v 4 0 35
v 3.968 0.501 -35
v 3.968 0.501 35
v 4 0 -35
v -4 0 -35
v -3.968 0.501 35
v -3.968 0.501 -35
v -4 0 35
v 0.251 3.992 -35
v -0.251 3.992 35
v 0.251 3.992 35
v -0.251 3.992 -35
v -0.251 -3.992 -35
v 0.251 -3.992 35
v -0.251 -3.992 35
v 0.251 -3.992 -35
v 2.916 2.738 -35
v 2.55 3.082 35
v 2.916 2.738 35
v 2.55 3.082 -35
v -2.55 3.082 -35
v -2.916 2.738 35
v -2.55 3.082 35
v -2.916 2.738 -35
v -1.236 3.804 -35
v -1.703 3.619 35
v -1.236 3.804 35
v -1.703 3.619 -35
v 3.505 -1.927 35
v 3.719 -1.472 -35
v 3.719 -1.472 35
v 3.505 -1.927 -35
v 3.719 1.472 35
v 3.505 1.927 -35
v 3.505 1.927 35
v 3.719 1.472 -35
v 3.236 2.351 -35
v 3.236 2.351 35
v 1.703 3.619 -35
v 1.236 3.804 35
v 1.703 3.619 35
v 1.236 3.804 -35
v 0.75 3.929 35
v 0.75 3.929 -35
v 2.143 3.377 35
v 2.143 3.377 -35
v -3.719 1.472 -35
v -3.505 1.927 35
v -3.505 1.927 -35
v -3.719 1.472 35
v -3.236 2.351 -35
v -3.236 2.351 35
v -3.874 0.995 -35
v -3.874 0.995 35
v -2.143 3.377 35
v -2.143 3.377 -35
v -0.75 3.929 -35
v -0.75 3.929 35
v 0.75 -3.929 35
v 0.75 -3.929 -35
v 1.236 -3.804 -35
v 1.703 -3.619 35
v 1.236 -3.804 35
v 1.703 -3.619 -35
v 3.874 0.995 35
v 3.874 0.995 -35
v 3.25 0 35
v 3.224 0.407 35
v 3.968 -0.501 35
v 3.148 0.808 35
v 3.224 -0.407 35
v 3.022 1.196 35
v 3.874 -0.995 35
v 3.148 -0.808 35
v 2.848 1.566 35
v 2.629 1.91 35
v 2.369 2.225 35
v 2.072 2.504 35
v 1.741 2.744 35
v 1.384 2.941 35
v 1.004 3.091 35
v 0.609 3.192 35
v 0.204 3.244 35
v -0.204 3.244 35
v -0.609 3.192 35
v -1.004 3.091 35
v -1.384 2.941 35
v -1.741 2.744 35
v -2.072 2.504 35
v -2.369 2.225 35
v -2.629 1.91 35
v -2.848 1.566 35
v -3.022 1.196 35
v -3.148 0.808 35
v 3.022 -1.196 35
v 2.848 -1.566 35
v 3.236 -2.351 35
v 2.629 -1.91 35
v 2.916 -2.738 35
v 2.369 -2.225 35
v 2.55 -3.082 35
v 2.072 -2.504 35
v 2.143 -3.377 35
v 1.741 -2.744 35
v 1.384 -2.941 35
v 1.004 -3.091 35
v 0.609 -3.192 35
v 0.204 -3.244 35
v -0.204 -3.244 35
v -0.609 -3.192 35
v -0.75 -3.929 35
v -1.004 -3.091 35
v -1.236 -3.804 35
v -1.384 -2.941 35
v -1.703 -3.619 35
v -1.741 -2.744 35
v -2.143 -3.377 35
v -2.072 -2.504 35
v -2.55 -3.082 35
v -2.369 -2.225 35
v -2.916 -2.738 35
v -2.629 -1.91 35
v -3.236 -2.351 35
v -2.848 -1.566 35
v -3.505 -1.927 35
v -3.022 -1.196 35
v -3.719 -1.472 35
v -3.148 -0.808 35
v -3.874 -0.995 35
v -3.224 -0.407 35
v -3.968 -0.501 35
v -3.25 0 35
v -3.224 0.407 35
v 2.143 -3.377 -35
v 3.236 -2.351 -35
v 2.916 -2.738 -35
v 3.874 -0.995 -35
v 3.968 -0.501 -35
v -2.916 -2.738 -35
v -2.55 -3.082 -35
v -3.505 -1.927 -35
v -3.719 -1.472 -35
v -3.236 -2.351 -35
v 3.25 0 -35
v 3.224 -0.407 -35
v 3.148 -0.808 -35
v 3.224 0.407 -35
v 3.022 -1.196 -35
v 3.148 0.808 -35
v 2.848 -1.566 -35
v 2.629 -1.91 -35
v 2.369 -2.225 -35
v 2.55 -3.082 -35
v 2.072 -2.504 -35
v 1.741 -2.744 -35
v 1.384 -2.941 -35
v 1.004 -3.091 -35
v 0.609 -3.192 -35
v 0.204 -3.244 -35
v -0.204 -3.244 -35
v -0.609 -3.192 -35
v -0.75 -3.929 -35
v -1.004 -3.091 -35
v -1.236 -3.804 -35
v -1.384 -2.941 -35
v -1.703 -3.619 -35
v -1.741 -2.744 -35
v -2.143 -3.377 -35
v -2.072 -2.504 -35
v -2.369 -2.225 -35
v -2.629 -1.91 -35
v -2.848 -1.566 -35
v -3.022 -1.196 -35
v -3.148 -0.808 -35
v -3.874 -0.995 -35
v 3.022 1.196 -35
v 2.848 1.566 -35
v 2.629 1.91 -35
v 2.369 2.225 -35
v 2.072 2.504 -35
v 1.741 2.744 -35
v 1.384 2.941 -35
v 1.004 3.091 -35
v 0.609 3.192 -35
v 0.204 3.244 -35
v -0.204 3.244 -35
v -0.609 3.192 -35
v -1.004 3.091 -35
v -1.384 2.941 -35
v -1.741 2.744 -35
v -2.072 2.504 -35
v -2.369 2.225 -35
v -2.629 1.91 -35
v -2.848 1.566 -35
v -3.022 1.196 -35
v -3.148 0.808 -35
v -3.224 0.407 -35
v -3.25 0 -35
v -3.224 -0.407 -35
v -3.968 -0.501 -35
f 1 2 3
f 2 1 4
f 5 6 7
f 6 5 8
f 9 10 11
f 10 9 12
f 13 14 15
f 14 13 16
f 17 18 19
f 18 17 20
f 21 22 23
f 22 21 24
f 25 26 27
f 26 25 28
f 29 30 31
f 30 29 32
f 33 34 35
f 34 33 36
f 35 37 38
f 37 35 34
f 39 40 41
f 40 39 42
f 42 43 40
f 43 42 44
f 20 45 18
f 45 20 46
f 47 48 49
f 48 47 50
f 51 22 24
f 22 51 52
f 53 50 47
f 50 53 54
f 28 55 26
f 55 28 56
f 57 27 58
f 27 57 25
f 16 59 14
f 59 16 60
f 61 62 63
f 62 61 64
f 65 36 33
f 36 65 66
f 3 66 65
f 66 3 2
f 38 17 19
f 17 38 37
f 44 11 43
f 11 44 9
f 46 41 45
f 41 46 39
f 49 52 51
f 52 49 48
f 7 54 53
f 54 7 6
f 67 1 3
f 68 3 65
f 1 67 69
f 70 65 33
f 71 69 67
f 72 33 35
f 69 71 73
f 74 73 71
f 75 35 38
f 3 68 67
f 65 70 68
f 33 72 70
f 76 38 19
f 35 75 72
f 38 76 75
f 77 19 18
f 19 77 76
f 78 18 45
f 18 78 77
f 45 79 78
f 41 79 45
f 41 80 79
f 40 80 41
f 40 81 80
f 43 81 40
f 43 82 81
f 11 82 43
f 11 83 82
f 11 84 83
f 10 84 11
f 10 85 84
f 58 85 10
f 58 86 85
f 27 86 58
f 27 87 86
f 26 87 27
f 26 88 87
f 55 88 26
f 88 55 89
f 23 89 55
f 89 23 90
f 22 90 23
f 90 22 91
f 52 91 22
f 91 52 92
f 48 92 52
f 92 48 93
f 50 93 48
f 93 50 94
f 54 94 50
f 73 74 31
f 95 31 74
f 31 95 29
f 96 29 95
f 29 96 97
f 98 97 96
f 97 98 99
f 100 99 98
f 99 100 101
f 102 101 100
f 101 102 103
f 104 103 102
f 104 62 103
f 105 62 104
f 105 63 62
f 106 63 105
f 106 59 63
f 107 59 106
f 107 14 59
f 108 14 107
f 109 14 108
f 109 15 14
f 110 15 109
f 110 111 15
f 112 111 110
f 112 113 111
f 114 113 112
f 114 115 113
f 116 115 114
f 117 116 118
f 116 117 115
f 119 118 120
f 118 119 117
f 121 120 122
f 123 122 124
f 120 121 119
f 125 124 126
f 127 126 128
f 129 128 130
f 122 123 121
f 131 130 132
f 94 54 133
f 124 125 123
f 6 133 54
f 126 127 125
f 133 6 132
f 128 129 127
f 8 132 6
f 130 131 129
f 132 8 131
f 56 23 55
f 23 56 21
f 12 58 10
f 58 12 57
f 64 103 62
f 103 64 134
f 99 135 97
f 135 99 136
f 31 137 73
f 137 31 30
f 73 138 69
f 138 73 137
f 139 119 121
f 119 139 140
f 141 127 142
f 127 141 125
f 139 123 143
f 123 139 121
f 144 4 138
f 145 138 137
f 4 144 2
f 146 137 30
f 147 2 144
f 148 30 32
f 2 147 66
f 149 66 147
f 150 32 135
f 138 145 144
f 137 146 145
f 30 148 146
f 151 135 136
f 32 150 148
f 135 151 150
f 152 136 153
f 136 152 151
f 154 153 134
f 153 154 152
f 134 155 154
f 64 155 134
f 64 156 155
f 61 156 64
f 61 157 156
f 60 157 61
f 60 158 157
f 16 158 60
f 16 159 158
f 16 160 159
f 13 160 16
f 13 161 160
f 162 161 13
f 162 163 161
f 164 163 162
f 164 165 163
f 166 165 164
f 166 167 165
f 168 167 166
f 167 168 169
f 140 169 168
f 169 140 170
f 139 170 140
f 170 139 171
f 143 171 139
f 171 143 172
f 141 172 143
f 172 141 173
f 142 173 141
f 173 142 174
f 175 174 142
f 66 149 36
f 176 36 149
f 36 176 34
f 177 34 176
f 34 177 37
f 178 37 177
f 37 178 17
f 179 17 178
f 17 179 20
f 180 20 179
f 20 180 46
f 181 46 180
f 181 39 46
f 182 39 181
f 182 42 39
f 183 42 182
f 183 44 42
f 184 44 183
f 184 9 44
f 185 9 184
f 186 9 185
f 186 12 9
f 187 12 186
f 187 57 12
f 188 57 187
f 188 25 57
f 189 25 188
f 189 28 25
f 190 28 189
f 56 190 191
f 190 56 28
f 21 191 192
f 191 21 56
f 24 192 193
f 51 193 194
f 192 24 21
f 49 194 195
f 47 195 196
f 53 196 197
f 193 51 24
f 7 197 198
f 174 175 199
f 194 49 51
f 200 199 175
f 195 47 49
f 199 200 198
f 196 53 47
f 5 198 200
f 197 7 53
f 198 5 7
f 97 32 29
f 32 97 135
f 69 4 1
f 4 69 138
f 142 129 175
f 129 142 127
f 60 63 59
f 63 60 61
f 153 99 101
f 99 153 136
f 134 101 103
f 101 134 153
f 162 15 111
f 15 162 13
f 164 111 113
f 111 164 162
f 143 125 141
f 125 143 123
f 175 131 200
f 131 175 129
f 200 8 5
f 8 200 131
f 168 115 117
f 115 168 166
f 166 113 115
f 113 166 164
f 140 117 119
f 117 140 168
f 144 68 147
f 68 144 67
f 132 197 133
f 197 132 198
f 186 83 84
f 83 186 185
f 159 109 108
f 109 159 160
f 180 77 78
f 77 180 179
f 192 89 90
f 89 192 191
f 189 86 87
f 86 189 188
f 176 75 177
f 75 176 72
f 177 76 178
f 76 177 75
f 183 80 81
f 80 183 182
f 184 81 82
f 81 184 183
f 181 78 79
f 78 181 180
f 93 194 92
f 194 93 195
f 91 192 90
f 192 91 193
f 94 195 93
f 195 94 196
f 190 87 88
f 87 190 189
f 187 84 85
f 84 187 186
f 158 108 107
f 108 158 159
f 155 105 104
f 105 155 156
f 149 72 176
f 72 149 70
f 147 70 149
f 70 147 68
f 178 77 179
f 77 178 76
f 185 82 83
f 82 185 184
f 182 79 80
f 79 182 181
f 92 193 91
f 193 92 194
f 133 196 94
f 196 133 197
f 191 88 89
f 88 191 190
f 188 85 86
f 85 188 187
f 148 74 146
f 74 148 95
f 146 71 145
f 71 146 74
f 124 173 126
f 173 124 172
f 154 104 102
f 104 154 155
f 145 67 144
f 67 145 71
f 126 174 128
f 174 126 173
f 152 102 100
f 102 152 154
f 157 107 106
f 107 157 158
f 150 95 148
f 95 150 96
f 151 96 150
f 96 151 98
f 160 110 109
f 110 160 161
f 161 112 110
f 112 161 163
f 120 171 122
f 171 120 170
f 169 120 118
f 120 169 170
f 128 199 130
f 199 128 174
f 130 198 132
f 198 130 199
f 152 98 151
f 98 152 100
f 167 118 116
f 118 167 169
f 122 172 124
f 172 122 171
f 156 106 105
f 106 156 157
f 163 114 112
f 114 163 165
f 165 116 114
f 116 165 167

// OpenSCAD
$fn = 50;


difference() {
	union() {
		translate(v = [0, 0, -35.0000000000]) {
			cylinder(h = 70, r = 4.0000000000);
		}
	}
	union() {
		translate(v = [0, 0, -100.0000000000]) {
			cylinder(h = 200, r = 3.2500000000);
		}
	}
}
